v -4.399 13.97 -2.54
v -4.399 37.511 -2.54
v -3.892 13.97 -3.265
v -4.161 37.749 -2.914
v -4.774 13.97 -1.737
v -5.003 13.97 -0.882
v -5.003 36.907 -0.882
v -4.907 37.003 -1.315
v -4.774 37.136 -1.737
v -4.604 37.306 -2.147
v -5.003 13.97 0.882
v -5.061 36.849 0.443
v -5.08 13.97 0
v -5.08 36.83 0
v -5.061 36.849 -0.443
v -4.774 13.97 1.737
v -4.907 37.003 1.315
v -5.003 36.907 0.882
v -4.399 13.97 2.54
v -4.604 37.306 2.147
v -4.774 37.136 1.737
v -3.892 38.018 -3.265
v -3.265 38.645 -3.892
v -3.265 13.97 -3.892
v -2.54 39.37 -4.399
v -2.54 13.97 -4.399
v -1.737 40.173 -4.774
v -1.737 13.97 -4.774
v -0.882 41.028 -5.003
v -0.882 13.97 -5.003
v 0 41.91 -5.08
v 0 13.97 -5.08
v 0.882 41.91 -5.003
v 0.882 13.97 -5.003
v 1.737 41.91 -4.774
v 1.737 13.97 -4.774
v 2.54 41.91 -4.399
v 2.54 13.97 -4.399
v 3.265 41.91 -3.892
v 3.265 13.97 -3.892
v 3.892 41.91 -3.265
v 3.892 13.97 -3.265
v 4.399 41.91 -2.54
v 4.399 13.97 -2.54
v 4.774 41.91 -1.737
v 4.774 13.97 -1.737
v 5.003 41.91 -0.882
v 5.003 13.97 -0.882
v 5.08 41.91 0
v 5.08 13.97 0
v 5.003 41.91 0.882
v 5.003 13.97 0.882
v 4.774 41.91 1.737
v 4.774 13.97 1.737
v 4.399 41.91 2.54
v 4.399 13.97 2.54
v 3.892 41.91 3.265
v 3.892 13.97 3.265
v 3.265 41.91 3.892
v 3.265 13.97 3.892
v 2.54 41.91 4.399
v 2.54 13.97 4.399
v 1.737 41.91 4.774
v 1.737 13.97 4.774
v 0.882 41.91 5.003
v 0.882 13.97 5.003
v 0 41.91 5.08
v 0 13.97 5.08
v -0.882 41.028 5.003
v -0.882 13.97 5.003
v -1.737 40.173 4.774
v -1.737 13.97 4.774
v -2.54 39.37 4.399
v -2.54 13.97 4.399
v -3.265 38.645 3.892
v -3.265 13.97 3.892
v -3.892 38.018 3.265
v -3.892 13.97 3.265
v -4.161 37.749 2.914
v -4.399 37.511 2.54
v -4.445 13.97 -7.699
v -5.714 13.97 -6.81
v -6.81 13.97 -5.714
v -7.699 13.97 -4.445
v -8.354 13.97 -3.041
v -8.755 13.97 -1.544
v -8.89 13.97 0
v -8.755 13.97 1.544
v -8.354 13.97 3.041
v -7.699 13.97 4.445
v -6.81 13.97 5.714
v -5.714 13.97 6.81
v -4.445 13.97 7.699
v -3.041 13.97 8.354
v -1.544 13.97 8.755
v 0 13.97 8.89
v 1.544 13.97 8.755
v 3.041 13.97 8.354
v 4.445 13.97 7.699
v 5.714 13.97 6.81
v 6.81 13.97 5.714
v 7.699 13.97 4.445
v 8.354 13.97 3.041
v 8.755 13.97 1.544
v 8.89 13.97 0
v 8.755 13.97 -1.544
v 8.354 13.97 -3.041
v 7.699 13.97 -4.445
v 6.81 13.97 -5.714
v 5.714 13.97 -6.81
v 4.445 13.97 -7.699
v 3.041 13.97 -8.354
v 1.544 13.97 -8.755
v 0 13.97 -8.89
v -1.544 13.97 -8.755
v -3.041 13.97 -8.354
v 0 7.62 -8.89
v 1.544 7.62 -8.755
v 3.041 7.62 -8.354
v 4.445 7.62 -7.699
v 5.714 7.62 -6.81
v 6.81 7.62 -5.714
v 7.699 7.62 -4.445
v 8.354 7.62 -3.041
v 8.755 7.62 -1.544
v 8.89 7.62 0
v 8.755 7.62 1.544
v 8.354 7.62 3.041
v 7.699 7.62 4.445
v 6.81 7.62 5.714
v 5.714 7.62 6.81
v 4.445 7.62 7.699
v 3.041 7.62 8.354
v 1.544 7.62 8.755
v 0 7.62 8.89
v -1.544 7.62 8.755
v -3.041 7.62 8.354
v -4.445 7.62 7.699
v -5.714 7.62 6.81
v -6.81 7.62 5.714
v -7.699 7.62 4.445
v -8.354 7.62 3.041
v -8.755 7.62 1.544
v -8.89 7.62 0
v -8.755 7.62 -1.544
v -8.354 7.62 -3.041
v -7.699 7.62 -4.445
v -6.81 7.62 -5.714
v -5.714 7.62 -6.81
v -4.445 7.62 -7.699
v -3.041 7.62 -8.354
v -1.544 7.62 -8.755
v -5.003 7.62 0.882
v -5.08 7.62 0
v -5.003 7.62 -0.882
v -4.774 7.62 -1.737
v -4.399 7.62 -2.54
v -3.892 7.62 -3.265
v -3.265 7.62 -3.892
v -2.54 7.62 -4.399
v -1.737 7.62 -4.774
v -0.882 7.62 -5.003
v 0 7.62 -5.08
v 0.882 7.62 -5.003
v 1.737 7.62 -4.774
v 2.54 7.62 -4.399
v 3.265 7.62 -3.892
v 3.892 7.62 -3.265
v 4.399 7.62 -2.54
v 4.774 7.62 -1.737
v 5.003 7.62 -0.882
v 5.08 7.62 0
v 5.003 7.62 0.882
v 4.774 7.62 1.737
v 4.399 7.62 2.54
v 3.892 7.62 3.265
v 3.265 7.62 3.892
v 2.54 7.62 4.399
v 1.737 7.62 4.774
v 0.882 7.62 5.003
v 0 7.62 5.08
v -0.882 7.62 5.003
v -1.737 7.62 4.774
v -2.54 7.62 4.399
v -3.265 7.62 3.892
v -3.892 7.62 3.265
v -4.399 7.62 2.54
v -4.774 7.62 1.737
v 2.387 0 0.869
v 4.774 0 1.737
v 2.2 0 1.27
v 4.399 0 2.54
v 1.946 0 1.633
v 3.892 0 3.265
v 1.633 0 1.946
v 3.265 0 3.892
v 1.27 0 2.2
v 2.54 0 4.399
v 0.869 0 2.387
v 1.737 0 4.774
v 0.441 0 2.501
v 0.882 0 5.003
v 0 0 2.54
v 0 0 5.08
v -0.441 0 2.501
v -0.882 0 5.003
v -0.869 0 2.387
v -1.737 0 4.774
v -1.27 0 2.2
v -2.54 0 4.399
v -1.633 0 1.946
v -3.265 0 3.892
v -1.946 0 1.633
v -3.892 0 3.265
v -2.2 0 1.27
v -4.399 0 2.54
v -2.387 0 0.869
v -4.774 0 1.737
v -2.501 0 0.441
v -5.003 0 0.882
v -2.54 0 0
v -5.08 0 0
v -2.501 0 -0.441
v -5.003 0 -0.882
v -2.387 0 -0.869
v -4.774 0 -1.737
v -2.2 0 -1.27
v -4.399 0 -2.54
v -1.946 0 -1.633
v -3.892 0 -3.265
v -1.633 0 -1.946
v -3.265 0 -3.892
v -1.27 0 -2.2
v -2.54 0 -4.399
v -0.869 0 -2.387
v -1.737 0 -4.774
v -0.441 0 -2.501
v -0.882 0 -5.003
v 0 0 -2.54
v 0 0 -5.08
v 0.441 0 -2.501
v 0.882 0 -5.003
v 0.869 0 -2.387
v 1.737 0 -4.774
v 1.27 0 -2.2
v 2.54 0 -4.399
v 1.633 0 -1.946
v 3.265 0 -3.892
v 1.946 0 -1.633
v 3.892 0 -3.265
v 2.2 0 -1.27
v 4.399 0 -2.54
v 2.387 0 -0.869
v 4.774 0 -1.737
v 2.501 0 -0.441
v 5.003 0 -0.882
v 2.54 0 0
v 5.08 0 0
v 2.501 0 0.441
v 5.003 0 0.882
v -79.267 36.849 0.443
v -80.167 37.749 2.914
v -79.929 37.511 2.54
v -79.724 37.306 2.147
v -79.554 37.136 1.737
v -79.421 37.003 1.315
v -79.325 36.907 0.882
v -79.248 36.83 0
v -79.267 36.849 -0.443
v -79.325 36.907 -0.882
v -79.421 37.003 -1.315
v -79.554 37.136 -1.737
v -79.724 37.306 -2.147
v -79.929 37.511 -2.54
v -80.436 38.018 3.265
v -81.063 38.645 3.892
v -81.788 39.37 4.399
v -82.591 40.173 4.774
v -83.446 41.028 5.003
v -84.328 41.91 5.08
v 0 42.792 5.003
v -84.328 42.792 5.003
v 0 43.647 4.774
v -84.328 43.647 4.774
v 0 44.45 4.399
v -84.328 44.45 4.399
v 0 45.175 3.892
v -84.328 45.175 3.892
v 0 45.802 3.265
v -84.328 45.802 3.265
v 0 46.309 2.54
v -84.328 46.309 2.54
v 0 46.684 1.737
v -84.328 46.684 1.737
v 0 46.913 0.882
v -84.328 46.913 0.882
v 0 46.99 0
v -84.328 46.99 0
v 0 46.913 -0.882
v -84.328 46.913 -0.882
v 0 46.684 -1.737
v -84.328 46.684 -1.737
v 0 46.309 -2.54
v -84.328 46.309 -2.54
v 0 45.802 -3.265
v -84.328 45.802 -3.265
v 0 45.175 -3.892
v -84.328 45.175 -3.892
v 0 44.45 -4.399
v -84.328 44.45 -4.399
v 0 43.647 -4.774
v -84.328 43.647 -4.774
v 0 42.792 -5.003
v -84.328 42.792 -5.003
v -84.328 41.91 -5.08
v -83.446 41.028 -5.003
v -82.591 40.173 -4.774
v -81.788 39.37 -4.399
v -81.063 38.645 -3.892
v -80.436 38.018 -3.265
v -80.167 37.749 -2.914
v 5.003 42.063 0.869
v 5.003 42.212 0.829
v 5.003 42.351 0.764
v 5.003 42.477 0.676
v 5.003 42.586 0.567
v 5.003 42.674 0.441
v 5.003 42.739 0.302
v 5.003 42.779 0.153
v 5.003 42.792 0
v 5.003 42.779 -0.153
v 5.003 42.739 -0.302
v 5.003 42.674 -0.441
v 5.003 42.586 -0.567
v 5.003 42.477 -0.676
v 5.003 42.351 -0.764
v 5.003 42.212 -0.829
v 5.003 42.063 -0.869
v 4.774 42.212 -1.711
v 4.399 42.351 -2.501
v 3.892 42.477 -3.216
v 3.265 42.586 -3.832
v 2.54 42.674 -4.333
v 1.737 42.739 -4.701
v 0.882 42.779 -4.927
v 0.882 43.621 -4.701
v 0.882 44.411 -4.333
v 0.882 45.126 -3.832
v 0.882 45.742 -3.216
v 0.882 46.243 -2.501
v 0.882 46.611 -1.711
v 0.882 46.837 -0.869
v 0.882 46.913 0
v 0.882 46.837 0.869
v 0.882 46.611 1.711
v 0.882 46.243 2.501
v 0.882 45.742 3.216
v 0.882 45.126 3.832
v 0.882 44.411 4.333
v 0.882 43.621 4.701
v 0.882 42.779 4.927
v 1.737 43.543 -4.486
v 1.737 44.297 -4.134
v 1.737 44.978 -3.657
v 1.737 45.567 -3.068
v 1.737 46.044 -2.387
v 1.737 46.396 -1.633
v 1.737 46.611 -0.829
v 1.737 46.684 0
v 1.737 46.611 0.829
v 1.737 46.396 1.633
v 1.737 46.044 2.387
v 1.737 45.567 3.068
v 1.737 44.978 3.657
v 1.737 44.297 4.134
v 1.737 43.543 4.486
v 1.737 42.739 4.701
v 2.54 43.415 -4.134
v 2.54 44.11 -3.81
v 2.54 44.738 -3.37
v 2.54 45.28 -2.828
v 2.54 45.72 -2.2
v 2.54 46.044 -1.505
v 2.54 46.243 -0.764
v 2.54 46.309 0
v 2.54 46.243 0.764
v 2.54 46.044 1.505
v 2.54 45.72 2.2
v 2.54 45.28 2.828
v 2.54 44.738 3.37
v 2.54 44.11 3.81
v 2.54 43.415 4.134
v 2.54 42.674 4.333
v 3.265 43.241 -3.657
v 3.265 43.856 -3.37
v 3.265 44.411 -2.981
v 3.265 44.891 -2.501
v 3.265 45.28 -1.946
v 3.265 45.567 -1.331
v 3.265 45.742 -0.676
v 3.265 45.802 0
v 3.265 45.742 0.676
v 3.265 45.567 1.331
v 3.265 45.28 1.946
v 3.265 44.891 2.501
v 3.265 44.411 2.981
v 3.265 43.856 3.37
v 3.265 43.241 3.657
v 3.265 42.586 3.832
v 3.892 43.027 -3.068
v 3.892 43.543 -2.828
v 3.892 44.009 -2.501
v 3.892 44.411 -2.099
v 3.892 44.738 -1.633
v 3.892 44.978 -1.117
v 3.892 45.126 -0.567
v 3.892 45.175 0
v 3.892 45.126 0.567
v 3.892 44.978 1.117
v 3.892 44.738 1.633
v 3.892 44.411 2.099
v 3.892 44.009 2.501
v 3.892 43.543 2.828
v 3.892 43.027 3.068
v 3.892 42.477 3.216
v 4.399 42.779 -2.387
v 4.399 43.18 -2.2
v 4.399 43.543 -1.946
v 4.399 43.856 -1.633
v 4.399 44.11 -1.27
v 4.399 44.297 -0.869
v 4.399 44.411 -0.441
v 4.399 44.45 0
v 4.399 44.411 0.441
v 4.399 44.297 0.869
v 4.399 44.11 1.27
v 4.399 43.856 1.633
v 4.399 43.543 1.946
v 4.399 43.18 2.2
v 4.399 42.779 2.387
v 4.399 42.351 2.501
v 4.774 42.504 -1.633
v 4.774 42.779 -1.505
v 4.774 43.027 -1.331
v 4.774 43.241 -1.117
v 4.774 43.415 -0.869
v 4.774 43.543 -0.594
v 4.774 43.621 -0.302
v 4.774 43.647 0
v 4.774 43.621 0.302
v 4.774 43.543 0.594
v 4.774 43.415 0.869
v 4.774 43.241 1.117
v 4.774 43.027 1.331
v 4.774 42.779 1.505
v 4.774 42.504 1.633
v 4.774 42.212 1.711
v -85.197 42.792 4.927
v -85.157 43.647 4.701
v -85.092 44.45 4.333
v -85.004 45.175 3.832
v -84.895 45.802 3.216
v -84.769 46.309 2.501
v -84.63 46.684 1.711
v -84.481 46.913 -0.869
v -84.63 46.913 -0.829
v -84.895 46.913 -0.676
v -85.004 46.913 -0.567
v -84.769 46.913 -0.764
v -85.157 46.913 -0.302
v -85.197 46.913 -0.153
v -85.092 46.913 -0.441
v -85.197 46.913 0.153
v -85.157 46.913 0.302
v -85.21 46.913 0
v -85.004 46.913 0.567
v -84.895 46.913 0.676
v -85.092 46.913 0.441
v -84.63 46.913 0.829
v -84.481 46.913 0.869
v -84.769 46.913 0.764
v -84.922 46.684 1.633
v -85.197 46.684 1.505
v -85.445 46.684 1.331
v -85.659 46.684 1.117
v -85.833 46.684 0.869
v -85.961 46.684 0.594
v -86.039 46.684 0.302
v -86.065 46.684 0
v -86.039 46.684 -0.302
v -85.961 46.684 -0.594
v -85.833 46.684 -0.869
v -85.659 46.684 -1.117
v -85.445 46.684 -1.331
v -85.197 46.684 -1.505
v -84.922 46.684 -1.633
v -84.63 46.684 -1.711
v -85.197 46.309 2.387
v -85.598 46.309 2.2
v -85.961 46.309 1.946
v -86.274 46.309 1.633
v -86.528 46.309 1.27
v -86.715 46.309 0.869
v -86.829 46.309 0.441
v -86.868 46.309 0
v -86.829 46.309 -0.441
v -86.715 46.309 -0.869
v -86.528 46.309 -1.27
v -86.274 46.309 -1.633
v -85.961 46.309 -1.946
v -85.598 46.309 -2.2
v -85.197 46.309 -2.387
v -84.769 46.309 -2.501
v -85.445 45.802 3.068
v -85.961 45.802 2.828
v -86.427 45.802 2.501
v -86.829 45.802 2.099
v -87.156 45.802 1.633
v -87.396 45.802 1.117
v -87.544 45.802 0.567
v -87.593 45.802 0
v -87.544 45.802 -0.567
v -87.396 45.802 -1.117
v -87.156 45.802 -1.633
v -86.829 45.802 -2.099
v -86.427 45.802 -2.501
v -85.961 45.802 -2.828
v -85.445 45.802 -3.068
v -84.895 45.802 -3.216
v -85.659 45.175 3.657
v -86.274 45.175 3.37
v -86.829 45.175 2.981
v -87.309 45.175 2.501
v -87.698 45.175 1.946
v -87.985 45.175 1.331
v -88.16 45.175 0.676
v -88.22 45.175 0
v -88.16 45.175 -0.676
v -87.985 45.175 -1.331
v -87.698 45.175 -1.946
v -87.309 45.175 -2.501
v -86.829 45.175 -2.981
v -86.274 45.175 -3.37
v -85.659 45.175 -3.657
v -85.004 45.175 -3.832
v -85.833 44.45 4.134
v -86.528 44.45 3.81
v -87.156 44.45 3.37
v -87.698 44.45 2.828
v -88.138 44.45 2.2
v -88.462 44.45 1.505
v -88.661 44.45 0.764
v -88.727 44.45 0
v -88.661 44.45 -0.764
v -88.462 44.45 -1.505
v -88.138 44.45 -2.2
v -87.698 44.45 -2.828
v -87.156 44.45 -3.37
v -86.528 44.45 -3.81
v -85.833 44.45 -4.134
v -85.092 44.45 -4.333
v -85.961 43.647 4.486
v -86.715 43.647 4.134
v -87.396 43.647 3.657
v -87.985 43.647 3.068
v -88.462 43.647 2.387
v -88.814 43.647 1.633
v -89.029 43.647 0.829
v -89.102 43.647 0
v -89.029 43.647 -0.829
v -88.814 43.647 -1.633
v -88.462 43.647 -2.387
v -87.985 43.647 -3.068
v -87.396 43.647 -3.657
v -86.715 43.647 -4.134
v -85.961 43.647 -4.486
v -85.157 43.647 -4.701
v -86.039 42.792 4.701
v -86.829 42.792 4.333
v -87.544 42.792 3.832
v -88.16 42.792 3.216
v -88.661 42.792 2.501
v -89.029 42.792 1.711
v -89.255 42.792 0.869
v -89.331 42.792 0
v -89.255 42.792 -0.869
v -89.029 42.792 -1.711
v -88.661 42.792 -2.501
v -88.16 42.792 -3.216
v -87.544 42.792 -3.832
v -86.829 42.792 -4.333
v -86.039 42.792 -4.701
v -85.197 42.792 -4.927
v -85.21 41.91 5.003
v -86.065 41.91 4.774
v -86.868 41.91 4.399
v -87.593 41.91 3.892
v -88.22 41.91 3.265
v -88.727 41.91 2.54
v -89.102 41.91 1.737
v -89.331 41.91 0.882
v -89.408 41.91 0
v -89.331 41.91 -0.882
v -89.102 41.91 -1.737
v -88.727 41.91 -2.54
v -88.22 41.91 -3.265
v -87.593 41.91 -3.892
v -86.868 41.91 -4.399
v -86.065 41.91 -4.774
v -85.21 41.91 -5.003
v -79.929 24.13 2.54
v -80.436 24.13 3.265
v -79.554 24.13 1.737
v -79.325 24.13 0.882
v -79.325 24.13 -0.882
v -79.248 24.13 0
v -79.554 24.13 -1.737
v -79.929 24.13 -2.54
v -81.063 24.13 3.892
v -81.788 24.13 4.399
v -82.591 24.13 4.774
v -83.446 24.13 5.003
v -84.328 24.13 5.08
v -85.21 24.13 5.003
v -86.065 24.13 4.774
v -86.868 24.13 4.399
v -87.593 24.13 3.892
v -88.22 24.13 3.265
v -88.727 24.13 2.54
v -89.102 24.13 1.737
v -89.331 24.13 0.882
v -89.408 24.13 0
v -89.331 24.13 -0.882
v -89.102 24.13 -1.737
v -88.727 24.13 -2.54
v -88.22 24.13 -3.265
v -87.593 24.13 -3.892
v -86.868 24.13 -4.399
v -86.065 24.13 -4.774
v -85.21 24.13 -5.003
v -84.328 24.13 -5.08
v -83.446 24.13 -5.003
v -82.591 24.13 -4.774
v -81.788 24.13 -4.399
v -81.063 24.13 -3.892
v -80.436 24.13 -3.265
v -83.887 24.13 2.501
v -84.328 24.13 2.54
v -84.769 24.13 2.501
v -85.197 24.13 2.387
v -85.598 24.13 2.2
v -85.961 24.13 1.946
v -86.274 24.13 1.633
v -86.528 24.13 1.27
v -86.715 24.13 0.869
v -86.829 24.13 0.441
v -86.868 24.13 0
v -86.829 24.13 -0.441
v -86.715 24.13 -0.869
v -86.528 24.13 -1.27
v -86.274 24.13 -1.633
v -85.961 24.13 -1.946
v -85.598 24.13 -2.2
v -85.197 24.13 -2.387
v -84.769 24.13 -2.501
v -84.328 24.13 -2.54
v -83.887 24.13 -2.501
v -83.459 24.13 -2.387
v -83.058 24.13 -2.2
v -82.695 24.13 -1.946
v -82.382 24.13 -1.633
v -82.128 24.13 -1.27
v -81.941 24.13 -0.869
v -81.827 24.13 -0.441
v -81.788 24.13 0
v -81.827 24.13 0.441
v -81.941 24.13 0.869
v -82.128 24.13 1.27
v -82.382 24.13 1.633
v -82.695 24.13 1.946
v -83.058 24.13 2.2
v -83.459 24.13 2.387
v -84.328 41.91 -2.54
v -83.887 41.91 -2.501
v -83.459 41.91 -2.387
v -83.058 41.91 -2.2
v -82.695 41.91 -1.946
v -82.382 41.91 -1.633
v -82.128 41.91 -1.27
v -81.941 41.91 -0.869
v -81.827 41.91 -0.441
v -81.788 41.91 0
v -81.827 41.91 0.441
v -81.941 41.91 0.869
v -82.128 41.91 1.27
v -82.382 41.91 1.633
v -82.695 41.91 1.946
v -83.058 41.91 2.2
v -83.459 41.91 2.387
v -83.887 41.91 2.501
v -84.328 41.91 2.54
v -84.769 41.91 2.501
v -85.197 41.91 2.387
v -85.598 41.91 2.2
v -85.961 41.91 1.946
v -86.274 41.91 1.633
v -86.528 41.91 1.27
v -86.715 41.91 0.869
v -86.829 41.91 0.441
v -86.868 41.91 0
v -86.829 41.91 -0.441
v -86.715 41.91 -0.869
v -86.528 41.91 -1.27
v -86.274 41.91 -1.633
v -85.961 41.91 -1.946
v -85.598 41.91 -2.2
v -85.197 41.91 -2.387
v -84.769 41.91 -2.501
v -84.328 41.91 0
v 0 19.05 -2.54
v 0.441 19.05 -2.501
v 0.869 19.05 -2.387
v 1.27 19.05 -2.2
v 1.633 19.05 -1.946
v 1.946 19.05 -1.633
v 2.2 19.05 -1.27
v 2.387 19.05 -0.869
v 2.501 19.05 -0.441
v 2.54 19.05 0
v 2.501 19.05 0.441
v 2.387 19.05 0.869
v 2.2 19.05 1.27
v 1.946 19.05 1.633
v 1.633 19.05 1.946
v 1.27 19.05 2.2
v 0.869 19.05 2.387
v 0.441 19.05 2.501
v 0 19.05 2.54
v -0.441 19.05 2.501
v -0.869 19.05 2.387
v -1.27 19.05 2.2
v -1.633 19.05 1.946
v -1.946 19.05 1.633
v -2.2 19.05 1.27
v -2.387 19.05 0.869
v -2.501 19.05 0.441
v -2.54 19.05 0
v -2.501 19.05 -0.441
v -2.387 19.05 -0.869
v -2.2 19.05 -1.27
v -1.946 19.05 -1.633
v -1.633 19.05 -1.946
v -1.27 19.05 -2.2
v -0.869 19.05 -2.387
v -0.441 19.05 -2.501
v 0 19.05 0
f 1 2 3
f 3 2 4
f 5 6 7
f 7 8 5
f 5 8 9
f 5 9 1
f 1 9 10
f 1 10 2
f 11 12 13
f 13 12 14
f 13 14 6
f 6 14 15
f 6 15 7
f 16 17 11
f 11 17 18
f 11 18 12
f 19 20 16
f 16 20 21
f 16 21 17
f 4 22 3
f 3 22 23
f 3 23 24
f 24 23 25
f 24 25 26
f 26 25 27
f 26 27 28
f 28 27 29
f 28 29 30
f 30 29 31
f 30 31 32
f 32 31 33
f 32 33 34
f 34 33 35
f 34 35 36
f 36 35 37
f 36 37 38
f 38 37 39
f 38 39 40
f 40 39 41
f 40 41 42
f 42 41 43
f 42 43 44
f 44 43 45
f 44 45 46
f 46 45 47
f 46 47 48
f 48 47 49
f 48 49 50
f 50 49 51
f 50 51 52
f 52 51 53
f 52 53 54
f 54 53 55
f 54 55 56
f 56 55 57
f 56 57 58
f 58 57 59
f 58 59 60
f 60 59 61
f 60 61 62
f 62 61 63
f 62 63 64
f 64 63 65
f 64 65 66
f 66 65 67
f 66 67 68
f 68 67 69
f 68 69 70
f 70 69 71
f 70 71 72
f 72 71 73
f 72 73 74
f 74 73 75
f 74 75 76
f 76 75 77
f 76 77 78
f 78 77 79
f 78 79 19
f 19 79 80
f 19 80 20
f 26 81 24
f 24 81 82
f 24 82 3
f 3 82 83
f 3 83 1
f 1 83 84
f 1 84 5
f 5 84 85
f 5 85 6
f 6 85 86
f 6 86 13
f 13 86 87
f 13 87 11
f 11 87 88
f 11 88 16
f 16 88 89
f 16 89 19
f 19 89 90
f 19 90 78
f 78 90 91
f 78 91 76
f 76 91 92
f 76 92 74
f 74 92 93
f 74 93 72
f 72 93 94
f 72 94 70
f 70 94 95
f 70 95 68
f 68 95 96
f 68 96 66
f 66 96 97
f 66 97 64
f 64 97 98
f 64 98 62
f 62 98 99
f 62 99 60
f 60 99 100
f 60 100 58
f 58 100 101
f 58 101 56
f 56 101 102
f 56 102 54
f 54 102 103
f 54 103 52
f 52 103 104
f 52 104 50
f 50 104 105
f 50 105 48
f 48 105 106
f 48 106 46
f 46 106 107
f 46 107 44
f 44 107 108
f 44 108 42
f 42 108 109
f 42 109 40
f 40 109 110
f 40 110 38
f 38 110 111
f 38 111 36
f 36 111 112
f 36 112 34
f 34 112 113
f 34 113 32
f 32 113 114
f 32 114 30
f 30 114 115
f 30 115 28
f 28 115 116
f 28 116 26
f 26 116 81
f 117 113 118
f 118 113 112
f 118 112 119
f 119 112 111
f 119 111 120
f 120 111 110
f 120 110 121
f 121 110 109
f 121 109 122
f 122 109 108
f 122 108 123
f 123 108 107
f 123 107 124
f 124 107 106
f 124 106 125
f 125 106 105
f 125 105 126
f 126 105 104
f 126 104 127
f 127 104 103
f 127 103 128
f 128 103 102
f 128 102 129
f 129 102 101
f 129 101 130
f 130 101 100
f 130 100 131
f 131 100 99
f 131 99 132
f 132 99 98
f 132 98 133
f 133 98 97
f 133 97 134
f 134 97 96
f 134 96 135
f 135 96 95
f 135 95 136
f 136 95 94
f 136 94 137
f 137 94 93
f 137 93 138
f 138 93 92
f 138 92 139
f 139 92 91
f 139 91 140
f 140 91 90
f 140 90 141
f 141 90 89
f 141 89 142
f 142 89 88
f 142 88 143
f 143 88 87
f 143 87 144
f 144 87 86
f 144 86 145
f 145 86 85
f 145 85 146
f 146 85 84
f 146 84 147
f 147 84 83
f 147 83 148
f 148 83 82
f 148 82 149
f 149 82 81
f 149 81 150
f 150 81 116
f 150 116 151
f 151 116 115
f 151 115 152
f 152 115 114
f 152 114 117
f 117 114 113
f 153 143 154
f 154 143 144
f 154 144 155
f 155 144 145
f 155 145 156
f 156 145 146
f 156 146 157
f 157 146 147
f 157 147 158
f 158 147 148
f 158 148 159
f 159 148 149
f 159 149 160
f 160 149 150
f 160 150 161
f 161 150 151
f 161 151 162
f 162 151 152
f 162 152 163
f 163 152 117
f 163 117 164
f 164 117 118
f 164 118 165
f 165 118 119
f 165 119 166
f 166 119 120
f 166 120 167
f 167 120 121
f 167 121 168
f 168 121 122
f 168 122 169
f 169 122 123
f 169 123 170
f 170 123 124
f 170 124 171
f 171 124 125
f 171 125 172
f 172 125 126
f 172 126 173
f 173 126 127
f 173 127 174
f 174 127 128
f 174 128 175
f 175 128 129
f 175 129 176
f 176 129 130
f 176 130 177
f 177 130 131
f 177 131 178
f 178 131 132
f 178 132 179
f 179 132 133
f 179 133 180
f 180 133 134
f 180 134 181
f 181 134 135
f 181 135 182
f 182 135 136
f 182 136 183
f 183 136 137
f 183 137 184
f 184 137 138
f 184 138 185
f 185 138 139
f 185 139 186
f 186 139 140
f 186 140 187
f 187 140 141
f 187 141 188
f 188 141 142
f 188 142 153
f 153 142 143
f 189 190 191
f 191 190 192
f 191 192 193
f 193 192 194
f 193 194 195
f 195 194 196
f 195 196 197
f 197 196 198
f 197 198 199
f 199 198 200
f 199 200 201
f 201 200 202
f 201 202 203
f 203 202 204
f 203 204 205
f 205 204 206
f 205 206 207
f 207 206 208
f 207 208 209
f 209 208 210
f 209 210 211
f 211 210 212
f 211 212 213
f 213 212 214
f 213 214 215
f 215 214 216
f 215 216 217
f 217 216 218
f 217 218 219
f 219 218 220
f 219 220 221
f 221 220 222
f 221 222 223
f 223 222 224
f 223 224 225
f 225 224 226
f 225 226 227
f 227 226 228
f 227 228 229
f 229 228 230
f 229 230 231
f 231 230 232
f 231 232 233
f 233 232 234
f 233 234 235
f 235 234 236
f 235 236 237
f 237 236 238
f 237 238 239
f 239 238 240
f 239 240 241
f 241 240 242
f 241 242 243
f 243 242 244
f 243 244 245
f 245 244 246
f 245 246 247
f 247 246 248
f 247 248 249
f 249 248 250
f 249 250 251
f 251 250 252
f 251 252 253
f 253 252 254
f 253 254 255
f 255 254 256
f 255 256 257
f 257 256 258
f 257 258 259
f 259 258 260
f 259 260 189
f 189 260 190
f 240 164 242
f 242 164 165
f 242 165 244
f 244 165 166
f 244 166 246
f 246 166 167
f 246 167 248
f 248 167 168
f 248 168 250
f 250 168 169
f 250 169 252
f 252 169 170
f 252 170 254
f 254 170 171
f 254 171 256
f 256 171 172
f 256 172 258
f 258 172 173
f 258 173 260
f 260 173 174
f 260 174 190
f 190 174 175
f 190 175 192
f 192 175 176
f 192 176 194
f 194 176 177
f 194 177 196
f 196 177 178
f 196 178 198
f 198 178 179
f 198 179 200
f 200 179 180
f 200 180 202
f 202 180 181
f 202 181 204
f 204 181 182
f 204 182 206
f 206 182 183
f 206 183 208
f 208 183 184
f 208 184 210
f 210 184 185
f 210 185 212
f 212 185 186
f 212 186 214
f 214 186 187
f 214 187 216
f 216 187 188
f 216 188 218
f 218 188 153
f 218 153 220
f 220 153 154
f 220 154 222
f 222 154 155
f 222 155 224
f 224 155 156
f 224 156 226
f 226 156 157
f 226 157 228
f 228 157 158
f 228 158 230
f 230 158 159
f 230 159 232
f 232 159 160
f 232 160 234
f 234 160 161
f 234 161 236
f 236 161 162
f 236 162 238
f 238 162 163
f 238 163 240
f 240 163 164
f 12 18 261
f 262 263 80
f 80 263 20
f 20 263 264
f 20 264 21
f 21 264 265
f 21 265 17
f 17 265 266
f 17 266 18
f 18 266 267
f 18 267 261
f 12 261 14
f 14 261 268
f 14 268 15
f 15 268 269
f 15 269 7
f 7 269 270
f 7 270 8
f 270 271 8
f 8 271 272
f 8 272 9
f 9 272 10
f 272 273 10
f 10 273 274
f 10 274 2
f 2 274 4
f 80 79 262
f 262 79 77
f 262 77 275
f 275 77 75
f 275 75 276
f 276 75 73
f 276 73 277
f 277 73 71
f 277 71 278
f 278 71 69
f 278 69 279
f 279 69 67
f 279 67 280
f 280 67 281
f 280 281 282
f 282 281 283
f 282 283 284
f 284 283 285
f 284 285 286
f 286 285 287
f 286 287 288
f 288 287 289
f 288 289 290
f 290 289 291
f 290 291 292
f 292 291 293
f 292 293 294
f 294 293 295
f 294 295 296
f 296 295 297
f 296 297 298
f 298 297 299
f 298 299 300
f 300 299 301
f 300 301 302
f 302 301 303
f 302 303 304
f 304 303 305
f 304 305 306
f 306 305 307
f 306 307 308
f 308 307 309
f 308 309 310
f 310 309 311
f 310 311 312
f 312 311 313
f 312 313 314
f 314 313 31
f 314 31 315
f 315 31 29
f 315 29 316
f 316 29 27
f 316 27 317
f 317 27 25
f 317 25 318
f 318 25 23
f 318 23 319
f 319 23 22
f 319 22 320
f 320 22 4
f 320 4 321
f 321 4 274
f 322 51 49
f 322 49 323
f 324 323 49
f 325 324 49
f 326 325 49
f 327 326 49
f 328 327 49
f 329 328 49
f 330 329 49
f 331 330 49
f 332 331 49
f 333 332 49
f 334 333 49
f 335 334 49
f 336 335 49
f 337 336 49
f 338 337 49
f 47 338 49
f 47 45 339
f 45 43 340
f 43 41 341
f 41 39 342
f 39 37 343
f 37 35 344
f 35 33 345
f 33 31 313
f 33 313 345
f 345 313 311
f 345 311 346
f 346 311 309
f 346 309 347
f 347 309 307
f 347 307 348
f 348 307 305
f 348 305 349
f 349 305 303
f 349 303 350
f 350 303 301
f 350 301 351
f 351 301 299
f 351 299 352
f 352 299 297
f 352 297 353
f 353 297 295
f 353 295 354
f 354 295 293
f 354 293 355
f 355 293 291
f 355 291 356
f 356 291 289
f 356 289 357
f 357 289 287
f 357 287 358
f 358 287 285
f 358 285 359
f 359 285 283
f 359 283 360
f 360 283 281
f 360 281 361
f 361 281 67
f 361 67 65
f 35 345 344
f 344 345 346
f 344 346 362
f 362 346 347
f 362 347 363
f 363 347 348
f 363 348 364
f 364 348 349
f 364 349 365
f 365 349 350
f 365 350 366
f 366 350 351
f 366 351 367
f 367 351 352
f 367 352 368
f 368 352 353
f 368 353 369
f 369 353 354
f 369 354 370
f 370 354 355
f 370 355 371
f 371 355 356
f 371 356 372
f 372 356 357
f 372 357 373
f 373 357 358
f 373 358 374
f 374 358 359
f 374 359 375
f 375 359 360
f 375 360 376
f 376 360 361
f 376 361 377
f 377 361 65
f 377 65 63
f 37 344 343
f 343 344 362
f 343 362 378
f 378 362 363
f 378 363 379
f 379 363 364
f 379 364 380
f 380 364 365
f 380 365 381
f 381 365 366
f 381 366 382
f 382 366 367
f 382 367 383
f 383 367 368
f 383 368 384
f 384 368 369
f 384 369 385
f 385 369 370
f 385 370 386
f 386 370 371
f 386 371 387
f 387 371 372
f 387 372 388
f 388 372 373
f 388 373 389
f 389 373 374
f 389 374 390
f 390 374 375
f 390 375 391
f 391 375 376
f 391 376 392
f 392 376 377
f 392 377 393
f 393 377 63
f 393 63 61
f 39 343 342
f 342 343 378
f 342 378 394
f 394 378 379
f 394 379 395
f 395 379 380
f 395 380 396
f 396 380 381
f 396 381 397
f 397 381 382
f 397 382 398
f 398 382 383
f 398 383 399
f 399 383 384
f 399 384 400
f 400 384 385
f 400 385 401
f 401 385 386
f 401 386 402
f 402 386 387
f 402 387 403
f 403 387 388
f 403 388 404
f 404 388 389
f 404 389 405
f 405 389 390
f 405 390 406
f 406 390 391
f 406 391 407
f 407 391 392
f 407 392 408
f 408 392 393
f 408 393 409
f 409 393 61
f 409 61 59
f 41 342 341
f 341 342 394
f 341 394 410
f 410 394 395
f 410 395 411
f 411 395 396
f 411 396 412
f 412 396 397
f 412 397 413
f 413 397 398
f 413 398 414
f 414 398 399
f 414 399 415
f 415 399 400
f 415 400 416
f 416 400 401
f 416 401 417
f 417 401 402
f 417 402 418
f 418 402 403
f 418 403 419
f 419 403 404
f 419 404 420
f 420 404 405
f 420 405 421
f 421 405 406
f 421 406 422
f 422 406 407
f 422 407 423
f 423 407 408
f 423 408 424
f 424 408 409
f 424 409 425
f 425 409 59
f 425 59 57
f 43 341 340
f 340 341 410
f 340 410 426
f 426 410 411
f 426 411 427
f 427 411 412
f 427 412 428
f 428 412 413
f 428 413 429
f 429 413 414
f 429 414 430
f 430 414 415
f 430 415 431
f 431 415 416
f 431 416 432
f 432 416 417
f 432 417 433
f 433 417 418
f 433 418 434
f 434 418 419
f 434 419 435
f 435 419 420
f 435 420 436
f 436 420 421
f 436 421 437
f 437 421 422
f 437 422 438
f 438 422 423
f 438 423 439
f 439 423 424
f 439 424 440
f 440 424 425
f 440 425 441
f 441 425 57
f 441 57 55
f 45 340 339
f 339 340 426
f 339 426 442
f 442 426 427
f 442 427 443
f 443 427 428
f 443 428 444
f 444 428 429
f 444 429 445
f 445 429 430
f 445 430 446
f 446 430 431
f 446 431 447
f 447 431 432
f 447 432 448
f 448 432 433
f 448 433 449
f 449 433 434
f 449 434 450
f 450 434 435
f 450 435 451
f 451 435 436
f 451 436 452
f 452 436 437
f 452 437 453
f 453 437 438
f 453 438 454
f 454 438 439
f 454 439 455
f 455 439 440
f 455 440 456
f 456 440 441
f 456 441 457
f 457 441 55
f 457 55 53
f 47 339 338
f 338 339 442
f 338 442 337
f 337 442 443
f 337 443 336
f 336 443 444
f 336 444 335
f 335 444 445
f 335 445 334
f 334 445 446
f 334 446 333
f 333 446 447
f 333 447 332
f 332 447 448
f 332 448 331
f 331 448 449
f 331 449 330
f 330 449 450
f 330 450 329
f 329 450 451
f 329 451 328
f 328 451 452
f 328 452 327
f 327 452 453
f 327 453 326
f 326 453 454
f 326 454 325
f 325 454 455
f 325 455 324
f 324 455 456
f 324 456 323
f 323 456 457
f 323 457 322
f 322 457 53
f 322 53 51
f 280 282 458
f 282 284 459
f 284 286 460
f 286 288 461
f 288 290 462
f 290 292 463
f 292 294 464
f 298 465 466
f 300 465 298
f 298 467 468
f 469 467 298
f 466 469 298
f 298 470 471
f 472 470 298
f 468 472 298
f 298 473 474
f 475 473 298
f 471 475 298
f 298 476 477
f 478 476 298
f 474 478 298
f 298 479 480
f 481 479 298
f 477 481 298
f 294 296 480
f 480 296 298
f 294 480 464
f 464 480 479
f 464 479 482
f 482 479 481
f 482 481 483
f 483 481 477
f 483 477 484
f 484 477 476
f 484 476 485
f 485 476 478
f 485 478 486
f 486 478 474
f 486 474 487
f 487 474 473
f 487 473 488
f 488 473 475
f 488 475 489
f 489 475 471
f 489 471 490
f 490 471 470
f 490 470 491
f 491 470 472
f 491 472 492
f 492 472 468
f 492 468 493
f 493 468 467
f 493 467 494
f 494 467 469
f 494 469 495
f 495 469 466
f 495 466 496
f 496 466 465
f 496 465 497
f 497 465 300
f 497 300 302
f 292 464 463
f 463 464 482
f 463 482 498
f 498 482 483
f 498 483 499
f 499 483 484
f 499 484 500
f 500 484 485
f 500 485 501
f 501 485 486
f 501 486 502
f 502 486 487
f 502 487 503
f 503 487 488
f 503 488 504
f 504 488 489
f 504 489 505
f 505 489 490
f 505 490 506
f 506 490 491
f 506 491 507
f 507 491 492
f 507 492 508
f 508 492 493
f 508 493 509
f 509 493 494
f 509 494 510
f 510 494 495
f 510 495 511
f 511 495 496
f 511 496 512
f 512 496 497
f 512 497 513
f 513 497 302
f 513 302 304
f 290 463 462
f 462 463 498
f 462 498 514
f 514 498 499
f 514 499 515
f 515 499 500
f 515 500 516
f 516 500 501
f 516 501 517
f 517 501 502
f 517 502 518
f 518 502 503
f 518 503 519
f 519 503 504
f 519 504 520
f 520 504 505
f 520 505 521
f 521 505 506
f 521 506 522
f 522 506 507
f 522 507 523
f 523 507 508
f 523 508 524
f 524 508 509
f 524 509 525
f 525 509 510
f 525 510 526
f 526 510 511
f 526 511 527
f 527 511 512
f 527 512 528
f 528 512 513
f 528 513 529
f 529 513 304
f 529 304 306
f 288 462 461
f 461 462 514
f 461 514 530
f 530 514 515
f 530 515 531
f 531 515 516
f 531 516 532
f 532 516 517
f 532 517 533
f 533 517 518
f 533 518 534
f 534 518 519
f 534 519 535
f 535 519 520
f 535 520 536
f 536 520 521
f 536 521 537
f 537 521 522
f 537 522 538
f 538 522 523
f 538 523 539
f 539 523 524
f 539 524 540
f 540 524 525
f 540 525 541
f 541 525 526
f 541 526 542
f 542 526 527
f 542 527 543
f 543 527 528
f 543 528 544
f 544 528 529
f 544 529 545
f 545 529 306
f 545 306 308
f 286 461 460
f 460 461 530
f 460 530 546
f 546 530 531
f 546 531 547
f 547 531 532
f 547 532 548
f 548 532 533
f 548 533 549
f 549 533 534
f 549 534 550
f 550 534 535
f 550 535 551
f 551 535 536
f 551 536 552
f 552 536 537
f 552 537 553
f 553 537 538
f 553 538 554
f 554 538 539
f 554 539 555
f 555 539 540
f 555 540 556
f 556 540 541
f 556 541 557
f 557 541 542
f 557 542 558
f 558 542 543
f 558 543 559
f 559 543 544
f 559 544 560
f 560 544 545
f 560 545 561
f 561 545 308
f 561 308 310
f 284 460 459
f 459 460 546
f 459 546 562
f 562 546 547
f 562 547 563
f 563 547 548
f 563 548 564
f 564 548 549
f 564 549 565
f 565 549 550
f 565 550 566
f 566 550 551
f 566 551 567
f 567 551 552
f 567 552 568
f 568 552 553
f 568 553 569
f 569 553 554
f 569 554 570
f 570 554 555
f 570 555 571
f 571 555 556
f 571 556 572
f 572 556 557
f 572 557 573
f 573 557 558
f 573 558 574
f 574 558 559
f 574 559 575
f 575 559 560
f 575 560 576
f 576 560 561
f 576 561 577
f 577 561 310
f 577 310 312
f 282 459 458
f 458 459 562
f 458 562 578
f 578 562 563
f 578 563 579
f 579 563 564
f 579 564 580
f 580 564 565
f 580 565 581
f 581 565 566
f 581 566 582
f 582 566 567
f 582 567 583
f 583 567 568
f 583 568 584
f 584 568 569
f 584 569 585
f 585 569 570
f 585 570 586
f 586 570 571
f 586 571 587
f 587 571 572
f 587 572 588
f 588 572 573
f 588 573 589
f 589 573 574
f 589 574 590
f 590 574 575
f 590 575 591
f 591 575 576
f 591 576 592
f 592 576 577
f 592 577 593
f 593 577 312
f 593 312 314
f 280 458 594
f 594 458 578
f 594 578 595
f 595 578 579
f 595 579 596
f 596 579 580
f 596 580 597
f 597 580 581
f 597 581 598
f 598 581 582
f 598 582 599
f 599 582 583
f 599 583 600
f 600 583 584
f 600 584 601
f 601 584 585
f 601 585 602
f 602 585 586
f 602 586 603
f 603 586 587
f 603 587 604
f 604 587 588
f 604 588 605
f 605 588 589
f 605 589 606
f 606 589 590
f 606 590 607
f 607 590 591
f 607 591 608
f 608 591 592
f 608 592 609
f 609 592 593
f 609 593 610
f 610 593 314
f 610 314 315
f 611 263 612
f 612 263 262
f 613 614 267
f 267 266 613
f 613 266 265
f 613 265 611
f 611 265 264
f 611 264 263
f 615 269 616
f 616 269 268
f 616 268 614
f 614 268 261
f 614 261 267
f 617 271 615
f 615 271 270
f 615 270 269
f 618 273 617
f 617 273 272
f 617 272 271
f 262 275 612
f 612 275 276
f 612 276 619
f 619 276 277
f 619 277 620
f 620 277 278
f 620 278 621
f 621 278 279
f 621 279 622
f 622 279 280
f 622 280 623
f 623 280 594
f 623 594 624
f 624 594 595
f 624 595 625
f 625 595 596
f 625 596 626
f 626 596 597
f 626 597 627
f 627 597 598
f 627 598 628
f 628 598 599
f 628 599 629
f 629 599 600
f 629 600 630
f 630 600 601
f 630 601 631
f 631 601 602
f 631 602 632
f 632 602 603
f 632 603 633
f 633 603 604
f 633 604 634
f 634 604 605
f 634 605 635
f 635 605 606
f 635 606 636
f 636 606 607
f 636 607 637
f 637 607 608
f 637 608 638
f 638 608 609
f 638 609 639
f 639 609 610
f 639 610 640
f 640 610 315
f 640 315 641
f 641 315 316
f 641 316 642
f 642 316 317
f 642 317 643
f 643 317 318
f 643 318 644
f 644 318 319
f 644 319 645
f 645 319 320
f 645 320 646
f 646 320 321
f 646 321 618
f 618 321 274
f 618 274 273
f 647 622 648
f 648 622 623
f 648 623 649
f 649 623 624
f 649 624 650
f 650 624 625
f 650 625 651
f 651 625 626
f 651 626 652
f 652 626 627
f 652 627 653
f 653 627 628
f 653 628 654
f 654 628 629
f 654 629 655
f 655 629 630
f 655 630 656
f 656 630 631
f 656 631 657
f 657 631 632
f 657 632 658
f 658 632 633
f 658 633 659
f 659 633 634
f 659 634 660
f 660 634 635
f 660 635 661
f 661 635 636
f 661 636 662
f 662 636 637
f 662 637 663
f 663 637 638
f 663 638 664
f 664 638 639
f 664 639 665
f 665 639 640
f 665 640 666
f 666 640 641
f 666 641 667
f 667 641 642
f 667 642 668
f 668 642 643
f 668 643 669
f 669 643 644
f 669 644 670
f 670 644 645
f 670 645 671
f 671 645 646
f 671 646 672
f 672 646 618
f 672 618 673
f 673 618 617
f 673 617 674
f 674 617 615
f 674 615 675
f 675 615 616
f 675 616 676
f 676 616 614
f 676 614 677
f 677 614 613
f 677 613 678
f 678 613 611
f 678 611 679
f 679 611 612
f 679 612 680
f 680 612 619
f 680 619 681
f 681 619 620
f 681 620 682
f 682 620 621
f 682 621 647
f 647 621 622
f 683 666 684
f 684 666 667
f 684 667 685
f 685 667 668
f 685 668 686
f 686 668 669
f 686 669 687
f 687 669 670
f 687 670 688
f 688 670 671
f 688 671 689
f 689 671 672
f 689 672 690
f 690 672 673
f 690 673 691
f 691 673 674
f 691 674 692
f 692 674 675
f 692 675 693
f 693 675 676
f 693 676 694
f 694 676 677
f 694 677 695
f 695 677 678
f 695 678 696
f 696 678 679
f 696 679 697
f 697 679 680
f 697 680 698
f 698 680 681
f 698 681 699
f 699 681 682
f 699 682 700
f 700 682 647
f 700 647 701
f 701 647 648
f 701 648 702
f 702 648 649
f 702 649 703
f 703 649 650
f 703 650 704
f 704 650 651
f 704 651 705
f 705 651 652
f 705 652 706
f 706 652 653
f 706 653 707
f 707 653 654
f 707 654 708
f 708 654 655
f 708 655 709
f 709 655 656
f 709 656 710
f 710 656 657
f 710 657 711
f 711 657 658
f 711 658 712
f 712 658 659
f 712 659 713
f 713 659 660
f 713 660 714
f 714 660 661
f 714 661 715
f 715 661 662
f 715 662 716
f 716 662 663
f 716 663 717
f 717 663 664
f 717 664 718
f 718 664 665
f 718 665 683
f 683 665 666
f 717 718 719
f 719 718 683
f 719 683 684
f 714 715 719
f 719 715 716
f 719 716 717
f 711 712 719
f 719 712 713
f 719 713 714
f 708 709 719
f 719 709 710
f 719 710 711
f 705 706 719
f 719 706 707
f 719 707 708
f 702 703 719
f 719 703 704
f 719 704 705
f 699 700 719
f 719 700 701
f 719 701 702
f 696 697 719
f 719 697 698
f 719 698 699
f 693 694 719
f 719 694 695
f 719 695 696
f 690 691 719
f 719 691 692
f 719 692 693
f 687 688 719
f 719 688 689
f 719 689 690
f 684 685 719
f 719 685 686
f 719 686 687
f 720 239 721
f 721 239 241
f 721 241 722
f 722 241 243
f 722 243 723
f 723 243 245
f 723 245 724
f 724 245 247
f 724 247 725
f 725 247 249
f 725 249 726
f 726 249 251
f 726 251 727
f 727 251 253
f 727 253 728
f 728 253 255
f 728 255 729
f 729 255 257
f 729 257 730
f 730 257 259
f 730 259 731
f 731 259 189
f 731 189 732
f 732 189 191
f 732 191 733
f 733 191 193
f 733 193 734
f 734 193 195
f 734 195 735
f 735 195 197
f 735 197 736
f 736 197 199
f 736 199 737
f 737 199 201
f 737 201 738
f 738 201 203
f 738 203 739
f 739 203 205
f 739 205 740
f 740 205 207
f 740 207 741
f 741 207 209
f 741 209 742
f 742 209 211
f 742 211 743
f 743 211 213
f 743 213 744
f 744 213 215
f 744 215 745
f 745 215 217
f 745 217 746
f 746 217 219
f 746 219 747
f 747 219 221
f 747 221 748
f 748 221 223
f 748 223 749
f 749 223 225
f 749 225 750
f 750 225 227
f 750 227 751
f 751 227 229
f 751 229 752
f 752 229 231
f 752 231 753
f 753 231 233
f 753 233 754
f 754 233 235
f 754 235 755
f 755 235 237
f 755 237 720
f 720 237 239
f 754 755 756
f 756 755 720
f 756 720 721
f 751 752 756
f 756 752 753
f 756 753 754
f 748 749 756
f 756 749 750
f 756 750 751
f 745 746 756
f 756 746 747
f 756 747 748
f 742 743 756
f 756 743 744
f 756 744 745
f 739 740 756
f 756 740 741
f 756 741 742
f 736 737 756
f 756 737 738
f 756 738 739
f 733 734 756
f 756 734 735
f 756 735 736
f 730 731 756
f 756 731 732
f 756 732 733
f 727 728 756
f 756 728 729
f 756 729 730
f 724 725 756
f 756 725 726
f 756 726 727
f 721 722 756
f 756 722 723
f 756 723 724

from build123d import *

# Parameters (mm, degrees)
SKETCH2_R           = 5.08
BOSS_EXTRUDE2_DEPTH = 41.91
SKETCH3_W           = 8.89
SKETCH3_H           = 6.35
SKETCH6_R           = 2.54
CUT_EXTRUDE1_DEPTH  = 17.78
SKETCH7_R           = 2.54
CUT_EXTRUDE2_DEPTH  = 19.05


with BuildPart() as part:
    # Sketch2 → Boss-Extrude2 (new body)
    with BuildSketch(Plane(origin=(0, 0, 0), x_dir=(-1, 0, 0), z_dir=(0, 1, 0))):
        with Locations(Location((0, 0, 0), (0, 0, 90))):
            Circle(SKETCH2_R)
    extrude(amount=BOSS_EXTRUDE2_DEPTH)

    # Sketch3 → Revolve1 (revolve)
    with BuildSketch(Plane.XY, mode=Mode.PRIVATE) as revolve1_sk:
        with Locations((-4.445, 10.795)):
            Rectangle(SKETCH3_W, SKETCH3_H)
    revolve(revolve1_sk.sketch.rotate(Axis((0, 0, 0), (0, 1, 0)), 270), axis=Axis((0, 0, 0), (0, 1, 0)))

    # Sketch4 → Revolve2 (revolve)
    with BuildSketch(Plane(origin=(0, 41.91, 0), x_dir=(1, 0, 0), z_dir=(0, 1, 0)), mode=Mode.PRIVATE) as revolve2_sk:
        with BuildLine():
            Line((0, 5.08), (-84.328, 5.08))
            Line((-84.328, 5.08), (-84.328, 0))
            Line((-84.328, 0), (5.08, 0))
            ThreePointArc((5.08, 0), (3.592102448, 3.592102448), (0, 5.08))
        make_face()
    revolve(revolve2_sk.sketch.rotate(Axis((-84.328, 41.91, 0), (1, 0, 0)), 180), axis=Axis((-84.328, 41.91, 0), (1, 0, 0)))

    # Sketch5 → Revolve3 (revolve)
    with BuildSketch(Plane.ZY.offset(84.328), mode=Mode.PRIVATE) as revolve3_sk:
        with BuildLine():
            Line((0, 46.99), (0, 24.13))
            Line((0, 24.13), (-5.08, 24.13))
            Line((-5.08, 24.13), (-5.08, 41.91))
            ThreePointArc((-5.08, 41.91), (-3.592102448, 45.502102448), (0, 46.99))
        make_face()
    revolve(revolve3_sk.sketch.rotate(Axis((-84.328, 46.99, 0), (0, -1, 0)), 180), axis=Axis((-84.328, 46.99, 0), (0, -1, 0)))

    # Sketch6 → Cut-Extrude1 (cut)
    with BuildSketch(Plane.XZ.offset(-24.13)):
        with Locations(Location((-84.328, 0, 0), (0, 0, 270))):
            Circle(SKETCH6_R)
    extrude(amount=-CUT_EXTRUDE1_DEPTH, mode=Mode.SUBTRACT)

    # Sketch7 → Cut-Extrude2 (cut)
    with BuildSketch(Plane.XZ):
        with Locations(Location((0, 0, 0), (0, 0, 270))):
            Circle(SKETCH7_R)
    extrude(amount=-CUT_EXTRUDE2_DEPTH, mode=Mode.SUBTRACT)


solid = part.part
